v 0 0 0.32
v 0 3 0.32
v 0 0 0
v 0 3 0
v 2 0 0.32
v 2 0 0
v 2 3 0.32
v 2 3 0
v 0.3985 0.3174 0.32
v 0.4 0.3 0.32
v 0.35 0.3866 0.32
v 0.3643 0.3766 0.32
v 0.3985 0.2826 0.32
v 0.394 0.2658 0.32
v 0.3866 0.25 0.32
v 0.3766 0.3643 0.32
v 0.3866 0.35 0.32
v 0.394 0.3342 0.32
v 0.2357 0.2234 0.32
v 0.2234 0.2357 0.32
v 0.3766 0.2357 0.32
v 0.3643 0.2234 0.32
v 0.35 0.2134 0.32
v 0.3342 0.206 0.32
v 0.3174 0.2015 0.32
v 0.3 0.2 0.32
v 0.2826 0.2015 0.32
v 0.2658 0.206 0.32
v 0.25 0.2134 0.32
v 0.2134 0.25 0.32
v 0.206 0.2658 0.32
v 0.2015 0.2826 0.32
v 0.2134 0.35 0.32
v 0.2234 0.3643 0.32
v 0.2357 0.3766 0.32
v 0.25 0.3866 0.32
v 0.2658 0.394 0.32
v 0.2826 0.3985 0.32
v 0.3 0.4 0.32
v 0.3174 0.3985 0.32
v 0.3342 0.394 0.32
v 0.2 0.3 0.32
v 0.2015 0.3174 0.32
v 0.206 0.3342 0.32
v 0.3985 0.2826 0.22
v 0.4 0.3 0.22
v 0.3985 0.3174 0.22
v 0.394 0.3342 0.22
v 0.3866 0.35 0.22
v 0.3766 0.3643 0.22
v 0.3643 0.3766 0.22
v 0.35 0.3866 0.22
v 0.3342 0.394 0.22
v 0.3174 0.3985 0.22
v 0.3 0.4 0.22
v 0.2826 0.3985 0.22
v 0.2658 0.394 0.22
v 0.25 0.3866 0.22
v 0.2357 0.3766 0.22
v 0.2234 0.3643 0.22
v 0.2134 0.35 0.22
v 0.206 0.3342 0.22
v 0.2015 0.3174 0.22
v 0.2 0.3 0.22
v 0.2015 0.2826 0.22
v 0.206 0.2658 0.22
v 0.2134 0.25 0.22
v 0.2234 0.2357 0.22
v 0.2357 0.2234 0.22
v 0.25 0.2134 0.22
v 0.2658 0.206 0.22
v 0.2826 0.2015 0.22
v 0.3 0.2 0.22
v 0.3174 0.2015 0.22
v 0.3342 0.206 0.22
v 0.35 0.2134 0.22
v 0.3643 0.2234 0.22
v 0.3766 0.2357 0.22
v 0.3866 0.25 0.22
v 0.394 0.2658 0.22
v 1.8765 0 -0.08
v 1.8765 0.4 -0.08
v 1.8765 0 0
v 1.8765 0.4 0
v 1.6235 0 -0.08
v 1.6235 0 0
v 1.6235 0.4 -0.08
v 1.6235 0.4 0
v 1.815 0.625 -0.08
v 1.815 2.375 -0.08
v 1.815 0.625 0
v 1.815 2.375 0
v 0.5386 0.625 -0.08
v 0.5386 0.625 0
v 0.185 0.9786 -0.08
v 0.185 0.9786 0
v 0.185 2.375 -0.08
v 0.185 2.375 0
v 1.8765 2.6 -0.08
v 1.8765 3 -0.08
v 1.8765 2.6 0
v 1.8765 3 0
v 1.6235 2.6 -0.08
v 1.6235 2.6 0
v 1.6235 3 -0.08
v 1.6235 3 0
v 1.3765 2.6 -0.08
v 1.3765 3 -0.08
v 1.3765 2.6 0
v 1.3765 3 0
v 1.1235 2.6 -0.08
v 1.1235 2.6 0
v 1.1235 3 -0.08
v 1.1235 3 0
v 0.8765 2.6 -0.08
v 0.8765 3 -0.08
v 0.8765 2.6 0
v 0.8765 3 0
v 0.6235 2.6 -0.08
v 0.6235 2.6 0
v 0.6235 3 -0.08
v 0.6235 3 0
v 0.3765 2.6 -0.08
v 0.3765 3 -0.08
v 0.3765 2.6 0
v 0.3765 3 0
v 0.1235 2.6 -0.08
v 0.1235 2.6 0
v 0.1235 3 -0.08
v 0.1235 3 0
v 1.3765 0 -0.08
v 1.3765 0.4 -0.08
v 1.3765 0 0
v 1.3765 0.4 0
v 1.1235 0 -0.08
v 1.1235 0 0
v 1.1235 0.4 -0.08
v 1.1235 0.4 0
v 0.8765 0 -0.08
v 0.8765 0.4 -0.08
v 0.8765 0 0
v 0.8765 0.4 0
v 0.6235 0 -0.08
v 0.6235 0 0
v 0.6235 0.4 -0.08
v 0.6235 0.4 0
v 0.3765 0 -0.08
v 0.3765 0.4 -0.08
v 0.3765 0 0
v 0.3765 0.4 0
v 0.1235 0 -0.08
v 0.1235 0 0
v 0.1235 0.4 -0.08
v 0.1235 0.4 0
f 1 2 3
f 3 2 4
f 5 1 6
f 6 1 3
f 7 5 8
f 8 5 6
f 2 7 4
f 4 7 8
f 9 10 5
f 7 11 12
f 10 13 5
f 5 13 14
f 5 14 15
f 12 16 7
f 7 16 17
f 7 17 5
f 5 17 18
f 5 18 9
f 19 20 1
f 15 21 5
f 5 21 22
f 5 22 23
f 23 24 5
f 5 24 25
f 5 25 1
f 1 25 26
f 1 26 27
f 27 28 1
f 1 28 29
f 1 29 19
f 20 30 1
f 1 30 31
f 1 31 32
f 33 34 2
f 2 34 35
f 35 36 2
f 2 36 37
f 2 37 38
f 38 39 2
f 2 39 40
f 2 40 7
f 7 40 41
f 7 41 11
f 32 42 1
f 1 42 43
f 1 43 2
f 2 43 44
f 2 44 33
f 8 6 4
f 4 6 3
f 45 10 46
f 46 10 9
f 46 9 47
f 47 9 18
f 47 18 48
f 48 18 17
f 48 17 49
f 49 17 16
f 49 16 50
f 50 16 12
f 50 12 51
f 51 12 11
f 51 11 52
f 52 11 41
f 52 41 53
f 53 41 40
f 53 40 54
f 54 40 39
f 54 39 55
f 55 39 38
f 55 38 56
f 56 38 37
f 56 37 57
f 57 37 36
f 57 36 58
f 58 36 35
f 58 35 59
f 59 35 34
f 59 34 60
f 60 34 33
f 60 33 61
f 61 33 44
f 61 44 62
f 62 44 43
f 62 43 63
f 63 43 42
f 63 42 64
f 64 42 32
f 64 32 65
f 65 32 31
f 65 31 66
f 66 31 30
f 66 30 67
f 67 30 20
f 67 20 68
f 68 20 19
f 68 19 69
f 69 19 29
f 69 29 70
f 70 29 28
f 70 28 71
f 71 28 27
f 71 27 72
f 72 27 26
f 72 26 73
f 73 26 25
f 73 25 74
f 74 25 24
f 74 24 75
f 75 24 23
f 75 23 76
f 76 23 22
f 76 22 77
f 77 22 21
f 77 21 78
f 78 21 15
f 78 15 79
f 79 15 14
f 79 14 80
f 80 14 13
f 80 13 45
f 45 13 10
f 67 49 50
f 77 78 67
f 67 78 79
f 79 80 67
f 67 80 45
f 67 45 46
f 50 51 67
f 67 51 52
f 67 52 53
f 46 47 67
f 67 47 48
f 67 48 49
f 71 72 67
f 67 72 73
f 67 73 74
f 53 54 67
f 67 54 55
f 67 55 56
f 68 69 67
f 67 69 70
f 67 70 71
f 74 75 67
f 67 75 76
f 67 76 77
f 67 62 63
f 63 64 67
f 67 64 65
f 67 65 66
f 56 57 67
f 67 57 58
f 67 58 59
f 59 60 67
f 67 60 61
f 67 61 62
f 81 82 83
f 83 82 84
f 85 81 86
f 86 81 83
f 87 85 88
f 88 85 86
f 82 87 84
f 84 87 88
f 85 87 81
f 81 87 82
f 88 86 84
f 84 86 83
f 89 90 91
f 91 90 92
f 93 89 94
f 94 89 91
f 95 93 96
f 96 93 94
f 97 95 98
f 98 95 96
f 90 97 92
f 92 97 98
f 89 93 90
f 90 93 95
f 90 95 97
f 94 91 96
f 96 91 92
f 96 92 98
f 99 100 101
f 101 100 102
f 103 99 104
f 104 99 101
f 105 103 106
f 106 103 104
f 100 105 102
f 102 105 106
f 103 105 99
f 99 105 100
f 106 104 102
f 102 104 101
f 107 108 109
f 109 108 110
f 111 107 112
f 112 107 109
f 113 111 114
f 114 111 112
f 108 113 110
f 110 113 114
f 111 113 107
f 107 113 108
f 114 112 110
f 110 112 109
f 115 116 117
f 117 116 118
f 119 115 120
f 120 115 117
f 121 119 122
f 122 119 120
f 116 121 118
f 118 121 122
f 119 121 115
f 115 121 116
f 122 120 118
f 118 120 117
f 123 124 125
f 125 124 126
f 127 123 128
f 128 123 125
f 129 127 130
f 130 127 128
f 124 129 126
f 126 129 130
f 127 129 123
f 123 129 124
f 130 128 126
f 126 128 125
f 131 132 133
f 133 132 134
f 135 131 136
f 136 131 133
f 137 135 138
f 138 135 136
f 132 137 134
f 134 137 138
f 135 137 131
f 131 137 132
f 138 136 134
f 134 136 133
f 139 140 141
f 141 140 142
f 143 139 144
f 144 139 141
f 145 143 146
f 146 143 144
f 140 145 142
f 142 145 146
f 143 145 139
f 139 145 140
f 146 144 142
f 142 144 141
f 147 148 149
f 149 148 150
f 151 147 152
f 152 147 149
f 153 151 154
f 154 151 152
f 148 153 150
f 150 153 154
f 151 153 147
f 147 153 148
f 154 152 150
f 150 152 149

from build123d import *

# Parameters (mm, degrees)
SKETCH1_W             = 2
SKETCH1_H             = 3
BOSS_EXTRUDE1_DEPTH   = 0.32
SKETCH2_R             = 0.1
CUT_EXTRUDE1_DEPTH    = 0.1
BOSS_EXTRUDE2_DEPTH   = 0.08
SKETCH3_W             = 0.253
SKETCH3_H             = 0.4
BOSS_EXTRUDE2_2_DEPTH = 0.08
BOSS_EXTRUDE2_3_DEPTH = 0.08
BOSS_EXTRUDE2_4_DEPTH = 0.08
BOSS_EXTRUDE2_5_DEPTH = 0.08
BOSS_EXTRUDE2_6_DEPTH = 0.08
BOSS_EXTRUDE2_7_DEPTH = 0.08
BOSS_EXTRUDE2_8_DEPTH = 0.08
BOSS_EXTRUDE2_9_DEPTH = 0.08


with BuildPart() as part:
    # Sketch1 → Boss-Extrude1 (new body)
    with BuildSketch(Plane.XY):
        with Locations((1, 1.5)):
            Rectangle(SKETCH1_W, SKETCH1_H)
    extrude(amount=BOSS_EXTRUDE1_DEPTH)

    # Sketch2 → Cut-Extrude1 (cut)
    with BuildSketch(Plane.XY.offset(0.32)):
        with Locations((0.3, 0.3)):
            Circle(SKETCH2_R)
    extrude(amount=-CUT_EXTRUDE1_DEPTH, mode=Mode.SUBTRACT)


with BuildPart() as body_2:
    # Sketch3 → Boss-Extrude2 (new body)
    with BuildSketch(Plane(origin=(0, 0, 0), x_dir=(-1, 0, 0), z_dir=(0, 0, -1))):
        Polygon((-0.538553391, 0.625), (-0.185, 0.978553391), (-0.185, 2.375), (-1.815, 2.375), (-1.815, 0.625), align=None)
    extrude(amount=BOSS_EXTRUDE2_DEPTH)


with BuildPart() as body_3:
    # Sketch3 → Boss-Extrude2 2 (new body)
    with BuildSketch(Plane(origin=(0, 0, 0), x_dir=(-1, 0, 0), z_dir=(0, 0, -1))):
        with Locations((-1.75, 2.8)):
            Rectangle(SKETCH3_W, SKETCH3_H)
    extrude(amount=BOSS_EXTRUDE2_2_DEPTH)


with BuildPart() as body_4:
    # Sketch3 → Boss-Extrude2 3 (new body)
    with BuildSketch(Plane(origin=(0, 0, 0), x_dir=(-1, 0, 0), z_dir=(0, 0, -1))):
        with Locations((-1.25, 2.8)):
            Rectangle(SKETCH3_W, SKETCH3_H)
    extrude(amount=BOSS_EXTRUDE2_3_DEPTH)


with BuildPart() as body_5:
    # Sketch3 → Boss-Extrude2 4 (new body)
    with BuildSketch(Plane(origin=(0, 0, 0), x_dir=(-1, 0, 0), z_dir=(0, 0, -1))):
        with Locations((-0.75, 2.8)):
            Rectangle(SKETCH3_W, SKETCH3_H)
    extrude(amount=BOSS_EXTRUDE2_4_DEPTH)


with BuildPart() as body_6:
    # Sketch3 → Boss-Extrude2 5 (new body)
    with BuildSketch(Plane(origin=(0, 0, 0), x_dir=(-1, 0, 0), z_dir=(0, 0, -1))):
        with Locations((-0.25, 2.8)):
            Rectangle(SKETCH3_W, SKETCH3_H)
    extrude(amount=BOSS_EXTRUDE2_5_DEPTH)


with BuildPart() as body_7:
    # Sketch3 → Boss-Extrude2 6 (new body)
    with BuildSketch(Plane(origin=(0, 0, 0), x_dir=(-1, 0, 0), z_dir=(0, 0, -1))):
        with Locations((-1.25, 0.2)):
            Rectangle(SKETCH3_W, SKETCH3_H)
    extrude(amount=BOSS_EXTRUDE2_6_DEPTH)


with BuildPart() as body_8:
    # Sketch3 → Boss-Extrude2 7 (new body)
    with BuildSketch(Plane(origin=(0, 0, 0), x_dir=(-1, 0, 0), z_dir=(0, 0, -1))):
        with Locations((-0.75, 0.2)):
            Rectangle(SKETCH3_W, SKETCH3_H)
    extrude(amount=BOSS_EXTRUDE2_7_DEPTH)


with BuildPart() as body_9:
    # Sketch3 → Boss-Extrude2 8 (new body)
    with BuildSketch(Plane(origin=(0, 0, 0), x_dir=(-1, 0, 0), z_dir=(0, 0, -1))):
        with Locations((-0.25, 0.2)):
            Rectangle(SKETCH3_W, SKETCH3_H)
    extrude(amount=BOSS_EXTRUDE2_8_DEPTH)


with BuildPart() as body_10:
    # Sketch3 → Boss-Extrude2 9 (new body)
    with BuildSketch(Plane(origin=(0, 0, 0), x_dir=(-1, 0, 0), z_dir=(0, 0, -1))):
        with Locations((-1.75, 0.2)):
            Rectangle(SKETCH3_W, SKETCH3_H)
    extrude(amount=BOSS_EXTRUDE2_9_DEPTH)


solid = Compound([part.part, body_2.part, body_3.part, body_4.part, body_5.part, body_6.part, body_7.part, body_8.part, body_9.part, body_10.part])
